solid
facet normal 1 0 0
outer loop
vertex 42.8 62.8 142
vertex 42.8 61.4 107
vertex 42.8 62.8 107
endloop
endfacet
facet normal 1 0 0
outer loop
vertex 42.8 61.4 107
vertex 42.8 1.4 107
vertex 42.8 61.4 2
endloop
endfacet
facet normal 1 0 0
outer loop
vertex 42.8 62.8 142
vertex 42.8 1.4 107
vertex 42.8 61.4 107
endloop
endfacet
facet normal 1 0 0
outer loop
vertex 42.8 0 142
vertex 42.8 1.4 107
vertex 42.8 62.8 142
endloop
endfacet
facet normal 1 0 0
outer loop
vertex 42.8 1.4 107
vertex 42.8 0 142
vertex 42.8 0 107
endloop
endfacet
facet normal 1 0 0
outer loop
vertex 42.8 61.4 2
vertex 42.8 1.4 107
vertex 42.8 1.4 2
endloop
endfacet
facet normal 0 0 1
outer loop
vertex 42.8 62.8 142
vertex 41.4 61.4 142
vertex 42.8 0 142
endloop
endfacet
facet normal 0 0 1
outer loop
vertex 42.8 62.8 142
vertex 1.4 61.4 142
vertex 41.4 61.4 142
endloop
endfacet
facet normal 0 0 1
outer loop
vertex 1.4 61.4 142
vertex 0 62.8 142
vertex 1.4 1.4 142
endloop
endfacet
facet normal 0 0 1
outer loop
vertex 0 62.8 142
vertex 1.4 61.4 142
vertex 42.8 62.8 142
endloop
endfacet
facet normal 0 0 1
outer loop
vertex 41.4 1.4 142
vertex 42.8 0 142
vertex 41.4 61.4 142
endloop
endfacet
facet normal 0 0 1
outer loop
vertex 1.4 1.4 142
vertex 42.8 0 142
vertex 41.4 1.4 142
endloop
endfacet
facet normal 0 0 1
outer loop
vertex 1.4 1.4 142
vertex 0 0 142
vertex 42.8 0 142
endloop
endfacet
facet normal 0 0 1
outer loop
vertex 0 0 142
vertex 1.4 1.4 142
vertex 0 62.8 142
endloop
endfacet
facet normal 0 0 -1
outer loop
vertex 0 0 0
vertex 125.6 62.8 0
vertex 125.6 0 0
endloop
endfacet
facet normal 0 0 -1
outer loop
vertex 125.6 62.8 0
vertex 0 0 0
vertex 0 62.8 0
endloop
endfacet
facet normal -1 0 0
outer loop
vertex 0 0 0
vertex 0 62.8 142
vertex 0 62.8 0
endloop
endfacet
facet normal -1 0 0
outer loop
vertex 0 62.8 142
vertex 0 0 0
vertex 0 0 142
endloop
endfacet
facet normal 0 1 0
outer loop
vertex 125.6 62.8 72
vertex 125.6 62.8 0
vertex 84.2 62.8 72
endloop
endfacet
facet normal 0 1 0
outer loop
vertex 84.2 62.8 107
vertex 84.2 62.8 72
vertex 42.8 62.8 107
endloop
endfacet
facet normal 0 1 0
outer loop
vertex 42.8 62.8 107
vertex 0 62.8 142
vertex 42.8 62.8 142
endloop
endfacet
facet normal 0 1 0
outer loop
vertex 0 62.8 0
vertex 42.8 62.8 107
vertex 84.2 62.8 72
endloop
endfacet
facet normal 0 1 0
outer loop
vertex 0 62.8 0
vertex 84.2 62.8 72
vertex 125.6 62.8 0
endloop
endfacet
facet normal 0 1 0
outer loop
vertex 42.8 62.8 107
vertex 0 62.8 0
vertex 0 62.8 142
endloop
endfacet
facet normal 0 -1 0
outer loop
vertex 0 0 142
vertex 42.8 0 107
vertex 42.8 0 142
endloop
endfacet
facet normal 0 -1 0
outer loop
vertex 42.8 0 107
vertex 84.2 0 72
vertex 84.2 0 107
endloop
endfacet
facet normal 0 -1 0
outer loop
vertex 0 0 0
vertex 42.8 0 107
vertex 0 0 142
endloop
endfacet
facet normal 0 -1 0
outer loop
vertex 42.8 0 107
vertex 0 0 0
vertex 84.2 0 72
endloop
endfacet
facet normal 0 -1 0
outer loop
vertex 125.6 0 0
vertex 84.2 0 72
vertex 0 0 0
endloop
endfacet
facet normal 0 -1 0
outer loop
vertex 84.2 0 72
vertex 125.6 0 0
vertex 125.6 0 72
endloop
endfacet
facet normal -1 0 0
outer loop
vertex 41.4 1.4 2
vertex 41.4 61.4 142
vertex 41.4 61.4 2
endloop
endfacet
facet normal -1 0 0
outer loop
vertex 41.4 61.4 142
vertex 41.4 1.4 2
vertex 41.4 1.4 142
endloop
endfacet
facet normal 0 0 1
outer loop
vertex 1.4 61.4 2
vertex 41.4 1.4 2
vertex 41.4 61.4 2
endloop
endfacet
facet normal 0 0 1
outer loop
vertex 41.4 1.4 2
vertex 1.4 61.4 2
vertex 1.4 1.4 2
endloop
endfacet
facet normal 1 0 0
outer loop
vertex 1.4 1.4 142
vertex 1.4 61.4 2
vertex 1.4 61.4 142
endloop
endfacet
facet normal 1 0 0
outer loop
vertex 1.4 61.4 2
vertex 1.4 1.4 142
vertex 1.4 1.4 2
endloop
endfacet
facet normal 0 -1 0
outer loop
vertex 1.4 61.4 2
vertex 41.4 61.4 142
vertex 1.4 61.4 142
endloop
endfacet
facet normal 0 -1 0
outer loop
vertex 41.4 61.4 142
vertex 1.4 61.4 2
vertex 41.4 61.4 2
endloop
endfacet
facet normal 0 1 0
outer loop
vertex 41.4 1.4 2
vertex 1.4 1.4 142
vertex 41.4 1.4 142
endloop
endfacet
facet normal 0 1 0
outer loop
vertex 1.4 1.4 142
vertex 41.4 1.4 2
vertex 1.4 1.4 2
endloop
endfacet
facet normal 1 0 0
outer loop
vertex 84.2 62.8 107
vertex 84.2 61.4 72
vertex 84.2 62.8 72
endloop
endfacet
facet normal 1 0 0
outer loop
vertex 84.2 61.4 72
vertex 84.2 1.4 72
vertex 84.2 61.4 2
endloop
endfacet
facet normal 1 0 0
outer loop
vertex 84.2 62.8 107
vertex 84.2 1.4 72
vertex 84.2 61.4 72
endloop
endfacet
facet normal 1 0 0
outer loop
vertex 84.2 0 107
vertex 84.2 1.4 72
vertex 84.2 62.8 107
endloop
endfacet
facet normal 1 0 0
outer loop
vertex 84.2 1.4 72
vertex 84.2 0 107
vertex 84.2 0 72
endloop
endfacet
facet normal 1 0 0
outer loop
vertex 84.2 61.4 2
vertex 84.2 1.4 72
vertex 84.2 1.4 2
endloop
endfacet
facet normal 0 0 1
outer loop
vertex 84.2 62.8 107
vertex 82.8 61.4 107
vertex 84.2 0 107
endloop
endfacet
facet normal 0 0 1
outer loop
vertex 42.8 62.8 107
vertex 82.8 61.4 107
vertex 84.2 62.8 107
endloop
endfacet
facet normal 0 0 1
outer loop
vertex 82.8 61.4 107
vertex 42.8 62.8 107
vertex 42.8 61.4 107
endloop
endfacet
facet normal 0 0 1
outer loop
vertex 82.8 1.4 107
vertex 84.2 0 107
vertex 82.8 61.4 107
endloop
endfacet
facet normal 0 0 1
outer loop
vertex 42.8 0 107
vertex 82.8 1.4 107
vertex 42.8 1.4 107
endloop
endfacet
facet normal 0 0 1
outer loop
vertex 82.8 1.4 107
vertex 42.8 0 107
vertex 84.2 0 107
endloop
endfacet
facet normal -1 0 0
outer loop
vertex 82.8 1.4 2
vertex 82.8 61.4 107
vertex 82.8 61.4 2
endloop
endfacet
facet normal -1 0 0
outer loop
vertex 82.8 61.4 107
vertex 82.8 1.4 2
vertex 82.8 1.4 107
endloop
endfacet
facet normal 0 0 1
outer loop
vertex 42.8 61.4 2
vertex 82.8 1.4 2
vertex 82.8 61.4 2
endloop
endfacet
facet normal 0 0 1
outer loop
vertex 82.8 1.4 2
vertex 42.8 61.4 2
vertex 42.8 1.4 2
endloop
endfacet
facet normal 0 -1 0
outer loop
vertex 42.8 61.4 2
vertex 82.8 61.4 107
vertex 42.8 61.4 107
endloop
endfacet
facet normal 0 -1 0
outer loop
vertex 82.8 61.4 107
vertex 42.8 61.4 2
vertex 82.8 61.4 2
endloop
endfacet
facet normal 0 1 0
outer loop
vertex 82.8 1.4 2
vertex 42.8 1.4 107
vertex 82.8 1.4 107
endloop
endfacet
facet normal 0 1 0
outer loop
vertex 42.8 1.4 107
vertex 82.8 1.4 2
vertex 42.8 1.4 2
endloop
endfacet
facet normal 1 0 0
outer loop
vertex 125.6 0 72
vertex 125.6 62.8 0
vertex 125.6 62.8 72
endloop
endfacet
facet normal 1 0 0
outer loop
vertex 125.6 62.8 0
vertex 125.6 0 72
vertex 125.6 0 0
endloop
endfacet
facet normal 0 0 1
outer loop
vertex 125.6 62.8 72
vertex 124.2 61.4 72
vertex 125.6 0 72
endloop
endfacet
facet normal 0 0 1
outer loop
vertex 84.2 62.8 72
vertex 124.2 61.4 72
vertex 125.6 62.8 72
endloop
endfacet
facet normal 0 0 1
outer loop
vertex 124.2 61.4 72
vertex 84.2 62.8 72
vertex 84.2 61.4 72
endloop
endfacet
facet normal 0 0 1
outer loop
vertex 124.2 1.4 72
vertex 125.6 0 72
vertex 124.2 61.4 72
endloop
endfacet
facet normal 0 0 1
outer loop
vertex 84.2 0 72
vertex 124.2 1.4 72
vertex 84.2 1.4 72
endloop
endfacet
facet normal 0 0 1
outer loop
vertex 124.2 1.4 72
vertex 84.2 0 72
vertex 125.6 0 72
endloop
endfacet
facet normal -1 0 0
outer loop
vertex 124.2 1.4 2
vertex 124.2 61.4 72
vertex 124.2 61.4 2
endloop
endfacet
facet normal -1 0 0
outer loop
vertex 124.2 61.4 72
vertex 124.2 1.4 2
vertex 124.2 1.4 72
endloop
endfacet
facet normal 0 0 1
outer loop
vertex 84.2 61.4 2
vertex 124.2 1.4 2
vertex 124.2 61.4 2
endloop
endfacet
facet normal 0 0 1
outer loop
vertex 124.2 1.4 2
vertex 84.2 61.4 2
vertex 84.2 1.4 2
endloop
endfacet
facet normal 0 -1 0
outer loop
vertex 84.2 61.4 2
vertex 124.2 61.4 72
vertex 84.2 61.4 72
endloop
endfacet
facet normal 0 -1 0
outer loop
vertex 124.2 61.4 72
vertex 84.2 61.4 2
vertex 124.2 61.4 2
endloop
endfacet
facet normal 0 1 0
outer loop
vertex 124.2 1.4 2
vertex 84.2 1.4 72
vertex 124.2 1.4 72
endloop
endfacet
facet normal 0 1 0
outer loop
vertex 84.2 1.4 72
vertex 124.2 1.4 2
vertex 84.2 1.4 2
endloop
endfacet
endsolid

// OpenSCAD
// Zip ties are 8in, 6in, 4in

// Heights of inner bins in decending order.
heights = [140, 105, 70];

// Inner width of each bin
width = 40;

// Inner depth of each bin
depth = 60;

// Wall thickness
wall = 1.4;

// Base thickness
base = 2;

for(i = [0:len(heights)-1]) {
    let(
        t_wall = i == 0 ? 2*wall : wall,
        x_off = i == 0 ? 0 : wall+i*(width+wall),
        x_off_inner = i == 0 ? wall : x_off
    ) {
        difference() {
            translate([x_off, 0, 0]) cube([width+t_wall, depth+2*wall, heights[i]+base]);
            translate([x_off_inner, wall, base]) cube([width, depth, heights[i]+base]);
        }
            
    }
}
